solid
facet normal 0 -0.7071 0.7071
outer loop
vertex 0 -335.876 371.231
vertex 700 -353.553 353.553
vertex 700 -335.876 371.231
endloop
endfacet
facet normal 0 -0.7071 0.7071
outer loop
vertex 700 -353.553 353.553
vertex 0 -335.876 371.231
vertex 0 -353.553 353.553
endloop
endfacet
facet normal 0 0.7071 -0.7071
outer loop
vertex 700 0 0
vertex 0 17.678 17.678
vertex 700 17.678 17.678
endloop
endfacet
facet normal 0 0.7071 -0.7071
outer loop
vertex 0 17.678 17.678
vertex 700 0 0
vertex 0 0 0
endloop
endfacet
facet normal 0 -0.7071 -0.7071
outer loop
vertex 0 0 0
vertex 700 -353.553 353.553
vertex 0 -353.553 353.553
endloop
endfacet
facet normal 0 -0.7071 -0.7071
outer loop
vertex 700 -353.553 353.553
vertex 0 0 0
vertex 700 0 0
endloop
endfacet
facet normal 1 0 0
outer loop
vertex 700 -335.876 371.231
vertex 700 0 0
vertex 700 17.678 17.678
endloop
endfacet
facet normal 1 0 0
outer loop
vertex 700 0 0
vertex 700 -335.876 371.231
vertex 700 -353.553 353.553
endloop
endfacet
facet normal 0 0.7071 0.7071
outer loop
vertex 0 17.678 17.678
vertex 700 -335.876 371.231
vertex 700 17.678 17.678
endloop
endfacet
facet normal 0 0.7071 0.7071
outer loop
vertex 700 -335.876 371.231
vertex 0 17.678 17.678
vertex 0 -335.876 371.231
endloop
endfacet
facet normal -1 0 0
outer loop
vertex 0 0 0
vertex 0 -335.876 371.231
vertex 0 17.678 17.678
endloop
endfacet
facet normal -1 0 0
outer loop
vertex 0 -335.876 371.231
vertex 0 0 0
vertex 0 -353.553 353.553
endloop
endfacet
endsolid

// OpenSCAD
module pvsmall() {
    color([.6,.6,.9])
        cube([700,25,500]);
}
rotate([45,0,0])pvsmall();
